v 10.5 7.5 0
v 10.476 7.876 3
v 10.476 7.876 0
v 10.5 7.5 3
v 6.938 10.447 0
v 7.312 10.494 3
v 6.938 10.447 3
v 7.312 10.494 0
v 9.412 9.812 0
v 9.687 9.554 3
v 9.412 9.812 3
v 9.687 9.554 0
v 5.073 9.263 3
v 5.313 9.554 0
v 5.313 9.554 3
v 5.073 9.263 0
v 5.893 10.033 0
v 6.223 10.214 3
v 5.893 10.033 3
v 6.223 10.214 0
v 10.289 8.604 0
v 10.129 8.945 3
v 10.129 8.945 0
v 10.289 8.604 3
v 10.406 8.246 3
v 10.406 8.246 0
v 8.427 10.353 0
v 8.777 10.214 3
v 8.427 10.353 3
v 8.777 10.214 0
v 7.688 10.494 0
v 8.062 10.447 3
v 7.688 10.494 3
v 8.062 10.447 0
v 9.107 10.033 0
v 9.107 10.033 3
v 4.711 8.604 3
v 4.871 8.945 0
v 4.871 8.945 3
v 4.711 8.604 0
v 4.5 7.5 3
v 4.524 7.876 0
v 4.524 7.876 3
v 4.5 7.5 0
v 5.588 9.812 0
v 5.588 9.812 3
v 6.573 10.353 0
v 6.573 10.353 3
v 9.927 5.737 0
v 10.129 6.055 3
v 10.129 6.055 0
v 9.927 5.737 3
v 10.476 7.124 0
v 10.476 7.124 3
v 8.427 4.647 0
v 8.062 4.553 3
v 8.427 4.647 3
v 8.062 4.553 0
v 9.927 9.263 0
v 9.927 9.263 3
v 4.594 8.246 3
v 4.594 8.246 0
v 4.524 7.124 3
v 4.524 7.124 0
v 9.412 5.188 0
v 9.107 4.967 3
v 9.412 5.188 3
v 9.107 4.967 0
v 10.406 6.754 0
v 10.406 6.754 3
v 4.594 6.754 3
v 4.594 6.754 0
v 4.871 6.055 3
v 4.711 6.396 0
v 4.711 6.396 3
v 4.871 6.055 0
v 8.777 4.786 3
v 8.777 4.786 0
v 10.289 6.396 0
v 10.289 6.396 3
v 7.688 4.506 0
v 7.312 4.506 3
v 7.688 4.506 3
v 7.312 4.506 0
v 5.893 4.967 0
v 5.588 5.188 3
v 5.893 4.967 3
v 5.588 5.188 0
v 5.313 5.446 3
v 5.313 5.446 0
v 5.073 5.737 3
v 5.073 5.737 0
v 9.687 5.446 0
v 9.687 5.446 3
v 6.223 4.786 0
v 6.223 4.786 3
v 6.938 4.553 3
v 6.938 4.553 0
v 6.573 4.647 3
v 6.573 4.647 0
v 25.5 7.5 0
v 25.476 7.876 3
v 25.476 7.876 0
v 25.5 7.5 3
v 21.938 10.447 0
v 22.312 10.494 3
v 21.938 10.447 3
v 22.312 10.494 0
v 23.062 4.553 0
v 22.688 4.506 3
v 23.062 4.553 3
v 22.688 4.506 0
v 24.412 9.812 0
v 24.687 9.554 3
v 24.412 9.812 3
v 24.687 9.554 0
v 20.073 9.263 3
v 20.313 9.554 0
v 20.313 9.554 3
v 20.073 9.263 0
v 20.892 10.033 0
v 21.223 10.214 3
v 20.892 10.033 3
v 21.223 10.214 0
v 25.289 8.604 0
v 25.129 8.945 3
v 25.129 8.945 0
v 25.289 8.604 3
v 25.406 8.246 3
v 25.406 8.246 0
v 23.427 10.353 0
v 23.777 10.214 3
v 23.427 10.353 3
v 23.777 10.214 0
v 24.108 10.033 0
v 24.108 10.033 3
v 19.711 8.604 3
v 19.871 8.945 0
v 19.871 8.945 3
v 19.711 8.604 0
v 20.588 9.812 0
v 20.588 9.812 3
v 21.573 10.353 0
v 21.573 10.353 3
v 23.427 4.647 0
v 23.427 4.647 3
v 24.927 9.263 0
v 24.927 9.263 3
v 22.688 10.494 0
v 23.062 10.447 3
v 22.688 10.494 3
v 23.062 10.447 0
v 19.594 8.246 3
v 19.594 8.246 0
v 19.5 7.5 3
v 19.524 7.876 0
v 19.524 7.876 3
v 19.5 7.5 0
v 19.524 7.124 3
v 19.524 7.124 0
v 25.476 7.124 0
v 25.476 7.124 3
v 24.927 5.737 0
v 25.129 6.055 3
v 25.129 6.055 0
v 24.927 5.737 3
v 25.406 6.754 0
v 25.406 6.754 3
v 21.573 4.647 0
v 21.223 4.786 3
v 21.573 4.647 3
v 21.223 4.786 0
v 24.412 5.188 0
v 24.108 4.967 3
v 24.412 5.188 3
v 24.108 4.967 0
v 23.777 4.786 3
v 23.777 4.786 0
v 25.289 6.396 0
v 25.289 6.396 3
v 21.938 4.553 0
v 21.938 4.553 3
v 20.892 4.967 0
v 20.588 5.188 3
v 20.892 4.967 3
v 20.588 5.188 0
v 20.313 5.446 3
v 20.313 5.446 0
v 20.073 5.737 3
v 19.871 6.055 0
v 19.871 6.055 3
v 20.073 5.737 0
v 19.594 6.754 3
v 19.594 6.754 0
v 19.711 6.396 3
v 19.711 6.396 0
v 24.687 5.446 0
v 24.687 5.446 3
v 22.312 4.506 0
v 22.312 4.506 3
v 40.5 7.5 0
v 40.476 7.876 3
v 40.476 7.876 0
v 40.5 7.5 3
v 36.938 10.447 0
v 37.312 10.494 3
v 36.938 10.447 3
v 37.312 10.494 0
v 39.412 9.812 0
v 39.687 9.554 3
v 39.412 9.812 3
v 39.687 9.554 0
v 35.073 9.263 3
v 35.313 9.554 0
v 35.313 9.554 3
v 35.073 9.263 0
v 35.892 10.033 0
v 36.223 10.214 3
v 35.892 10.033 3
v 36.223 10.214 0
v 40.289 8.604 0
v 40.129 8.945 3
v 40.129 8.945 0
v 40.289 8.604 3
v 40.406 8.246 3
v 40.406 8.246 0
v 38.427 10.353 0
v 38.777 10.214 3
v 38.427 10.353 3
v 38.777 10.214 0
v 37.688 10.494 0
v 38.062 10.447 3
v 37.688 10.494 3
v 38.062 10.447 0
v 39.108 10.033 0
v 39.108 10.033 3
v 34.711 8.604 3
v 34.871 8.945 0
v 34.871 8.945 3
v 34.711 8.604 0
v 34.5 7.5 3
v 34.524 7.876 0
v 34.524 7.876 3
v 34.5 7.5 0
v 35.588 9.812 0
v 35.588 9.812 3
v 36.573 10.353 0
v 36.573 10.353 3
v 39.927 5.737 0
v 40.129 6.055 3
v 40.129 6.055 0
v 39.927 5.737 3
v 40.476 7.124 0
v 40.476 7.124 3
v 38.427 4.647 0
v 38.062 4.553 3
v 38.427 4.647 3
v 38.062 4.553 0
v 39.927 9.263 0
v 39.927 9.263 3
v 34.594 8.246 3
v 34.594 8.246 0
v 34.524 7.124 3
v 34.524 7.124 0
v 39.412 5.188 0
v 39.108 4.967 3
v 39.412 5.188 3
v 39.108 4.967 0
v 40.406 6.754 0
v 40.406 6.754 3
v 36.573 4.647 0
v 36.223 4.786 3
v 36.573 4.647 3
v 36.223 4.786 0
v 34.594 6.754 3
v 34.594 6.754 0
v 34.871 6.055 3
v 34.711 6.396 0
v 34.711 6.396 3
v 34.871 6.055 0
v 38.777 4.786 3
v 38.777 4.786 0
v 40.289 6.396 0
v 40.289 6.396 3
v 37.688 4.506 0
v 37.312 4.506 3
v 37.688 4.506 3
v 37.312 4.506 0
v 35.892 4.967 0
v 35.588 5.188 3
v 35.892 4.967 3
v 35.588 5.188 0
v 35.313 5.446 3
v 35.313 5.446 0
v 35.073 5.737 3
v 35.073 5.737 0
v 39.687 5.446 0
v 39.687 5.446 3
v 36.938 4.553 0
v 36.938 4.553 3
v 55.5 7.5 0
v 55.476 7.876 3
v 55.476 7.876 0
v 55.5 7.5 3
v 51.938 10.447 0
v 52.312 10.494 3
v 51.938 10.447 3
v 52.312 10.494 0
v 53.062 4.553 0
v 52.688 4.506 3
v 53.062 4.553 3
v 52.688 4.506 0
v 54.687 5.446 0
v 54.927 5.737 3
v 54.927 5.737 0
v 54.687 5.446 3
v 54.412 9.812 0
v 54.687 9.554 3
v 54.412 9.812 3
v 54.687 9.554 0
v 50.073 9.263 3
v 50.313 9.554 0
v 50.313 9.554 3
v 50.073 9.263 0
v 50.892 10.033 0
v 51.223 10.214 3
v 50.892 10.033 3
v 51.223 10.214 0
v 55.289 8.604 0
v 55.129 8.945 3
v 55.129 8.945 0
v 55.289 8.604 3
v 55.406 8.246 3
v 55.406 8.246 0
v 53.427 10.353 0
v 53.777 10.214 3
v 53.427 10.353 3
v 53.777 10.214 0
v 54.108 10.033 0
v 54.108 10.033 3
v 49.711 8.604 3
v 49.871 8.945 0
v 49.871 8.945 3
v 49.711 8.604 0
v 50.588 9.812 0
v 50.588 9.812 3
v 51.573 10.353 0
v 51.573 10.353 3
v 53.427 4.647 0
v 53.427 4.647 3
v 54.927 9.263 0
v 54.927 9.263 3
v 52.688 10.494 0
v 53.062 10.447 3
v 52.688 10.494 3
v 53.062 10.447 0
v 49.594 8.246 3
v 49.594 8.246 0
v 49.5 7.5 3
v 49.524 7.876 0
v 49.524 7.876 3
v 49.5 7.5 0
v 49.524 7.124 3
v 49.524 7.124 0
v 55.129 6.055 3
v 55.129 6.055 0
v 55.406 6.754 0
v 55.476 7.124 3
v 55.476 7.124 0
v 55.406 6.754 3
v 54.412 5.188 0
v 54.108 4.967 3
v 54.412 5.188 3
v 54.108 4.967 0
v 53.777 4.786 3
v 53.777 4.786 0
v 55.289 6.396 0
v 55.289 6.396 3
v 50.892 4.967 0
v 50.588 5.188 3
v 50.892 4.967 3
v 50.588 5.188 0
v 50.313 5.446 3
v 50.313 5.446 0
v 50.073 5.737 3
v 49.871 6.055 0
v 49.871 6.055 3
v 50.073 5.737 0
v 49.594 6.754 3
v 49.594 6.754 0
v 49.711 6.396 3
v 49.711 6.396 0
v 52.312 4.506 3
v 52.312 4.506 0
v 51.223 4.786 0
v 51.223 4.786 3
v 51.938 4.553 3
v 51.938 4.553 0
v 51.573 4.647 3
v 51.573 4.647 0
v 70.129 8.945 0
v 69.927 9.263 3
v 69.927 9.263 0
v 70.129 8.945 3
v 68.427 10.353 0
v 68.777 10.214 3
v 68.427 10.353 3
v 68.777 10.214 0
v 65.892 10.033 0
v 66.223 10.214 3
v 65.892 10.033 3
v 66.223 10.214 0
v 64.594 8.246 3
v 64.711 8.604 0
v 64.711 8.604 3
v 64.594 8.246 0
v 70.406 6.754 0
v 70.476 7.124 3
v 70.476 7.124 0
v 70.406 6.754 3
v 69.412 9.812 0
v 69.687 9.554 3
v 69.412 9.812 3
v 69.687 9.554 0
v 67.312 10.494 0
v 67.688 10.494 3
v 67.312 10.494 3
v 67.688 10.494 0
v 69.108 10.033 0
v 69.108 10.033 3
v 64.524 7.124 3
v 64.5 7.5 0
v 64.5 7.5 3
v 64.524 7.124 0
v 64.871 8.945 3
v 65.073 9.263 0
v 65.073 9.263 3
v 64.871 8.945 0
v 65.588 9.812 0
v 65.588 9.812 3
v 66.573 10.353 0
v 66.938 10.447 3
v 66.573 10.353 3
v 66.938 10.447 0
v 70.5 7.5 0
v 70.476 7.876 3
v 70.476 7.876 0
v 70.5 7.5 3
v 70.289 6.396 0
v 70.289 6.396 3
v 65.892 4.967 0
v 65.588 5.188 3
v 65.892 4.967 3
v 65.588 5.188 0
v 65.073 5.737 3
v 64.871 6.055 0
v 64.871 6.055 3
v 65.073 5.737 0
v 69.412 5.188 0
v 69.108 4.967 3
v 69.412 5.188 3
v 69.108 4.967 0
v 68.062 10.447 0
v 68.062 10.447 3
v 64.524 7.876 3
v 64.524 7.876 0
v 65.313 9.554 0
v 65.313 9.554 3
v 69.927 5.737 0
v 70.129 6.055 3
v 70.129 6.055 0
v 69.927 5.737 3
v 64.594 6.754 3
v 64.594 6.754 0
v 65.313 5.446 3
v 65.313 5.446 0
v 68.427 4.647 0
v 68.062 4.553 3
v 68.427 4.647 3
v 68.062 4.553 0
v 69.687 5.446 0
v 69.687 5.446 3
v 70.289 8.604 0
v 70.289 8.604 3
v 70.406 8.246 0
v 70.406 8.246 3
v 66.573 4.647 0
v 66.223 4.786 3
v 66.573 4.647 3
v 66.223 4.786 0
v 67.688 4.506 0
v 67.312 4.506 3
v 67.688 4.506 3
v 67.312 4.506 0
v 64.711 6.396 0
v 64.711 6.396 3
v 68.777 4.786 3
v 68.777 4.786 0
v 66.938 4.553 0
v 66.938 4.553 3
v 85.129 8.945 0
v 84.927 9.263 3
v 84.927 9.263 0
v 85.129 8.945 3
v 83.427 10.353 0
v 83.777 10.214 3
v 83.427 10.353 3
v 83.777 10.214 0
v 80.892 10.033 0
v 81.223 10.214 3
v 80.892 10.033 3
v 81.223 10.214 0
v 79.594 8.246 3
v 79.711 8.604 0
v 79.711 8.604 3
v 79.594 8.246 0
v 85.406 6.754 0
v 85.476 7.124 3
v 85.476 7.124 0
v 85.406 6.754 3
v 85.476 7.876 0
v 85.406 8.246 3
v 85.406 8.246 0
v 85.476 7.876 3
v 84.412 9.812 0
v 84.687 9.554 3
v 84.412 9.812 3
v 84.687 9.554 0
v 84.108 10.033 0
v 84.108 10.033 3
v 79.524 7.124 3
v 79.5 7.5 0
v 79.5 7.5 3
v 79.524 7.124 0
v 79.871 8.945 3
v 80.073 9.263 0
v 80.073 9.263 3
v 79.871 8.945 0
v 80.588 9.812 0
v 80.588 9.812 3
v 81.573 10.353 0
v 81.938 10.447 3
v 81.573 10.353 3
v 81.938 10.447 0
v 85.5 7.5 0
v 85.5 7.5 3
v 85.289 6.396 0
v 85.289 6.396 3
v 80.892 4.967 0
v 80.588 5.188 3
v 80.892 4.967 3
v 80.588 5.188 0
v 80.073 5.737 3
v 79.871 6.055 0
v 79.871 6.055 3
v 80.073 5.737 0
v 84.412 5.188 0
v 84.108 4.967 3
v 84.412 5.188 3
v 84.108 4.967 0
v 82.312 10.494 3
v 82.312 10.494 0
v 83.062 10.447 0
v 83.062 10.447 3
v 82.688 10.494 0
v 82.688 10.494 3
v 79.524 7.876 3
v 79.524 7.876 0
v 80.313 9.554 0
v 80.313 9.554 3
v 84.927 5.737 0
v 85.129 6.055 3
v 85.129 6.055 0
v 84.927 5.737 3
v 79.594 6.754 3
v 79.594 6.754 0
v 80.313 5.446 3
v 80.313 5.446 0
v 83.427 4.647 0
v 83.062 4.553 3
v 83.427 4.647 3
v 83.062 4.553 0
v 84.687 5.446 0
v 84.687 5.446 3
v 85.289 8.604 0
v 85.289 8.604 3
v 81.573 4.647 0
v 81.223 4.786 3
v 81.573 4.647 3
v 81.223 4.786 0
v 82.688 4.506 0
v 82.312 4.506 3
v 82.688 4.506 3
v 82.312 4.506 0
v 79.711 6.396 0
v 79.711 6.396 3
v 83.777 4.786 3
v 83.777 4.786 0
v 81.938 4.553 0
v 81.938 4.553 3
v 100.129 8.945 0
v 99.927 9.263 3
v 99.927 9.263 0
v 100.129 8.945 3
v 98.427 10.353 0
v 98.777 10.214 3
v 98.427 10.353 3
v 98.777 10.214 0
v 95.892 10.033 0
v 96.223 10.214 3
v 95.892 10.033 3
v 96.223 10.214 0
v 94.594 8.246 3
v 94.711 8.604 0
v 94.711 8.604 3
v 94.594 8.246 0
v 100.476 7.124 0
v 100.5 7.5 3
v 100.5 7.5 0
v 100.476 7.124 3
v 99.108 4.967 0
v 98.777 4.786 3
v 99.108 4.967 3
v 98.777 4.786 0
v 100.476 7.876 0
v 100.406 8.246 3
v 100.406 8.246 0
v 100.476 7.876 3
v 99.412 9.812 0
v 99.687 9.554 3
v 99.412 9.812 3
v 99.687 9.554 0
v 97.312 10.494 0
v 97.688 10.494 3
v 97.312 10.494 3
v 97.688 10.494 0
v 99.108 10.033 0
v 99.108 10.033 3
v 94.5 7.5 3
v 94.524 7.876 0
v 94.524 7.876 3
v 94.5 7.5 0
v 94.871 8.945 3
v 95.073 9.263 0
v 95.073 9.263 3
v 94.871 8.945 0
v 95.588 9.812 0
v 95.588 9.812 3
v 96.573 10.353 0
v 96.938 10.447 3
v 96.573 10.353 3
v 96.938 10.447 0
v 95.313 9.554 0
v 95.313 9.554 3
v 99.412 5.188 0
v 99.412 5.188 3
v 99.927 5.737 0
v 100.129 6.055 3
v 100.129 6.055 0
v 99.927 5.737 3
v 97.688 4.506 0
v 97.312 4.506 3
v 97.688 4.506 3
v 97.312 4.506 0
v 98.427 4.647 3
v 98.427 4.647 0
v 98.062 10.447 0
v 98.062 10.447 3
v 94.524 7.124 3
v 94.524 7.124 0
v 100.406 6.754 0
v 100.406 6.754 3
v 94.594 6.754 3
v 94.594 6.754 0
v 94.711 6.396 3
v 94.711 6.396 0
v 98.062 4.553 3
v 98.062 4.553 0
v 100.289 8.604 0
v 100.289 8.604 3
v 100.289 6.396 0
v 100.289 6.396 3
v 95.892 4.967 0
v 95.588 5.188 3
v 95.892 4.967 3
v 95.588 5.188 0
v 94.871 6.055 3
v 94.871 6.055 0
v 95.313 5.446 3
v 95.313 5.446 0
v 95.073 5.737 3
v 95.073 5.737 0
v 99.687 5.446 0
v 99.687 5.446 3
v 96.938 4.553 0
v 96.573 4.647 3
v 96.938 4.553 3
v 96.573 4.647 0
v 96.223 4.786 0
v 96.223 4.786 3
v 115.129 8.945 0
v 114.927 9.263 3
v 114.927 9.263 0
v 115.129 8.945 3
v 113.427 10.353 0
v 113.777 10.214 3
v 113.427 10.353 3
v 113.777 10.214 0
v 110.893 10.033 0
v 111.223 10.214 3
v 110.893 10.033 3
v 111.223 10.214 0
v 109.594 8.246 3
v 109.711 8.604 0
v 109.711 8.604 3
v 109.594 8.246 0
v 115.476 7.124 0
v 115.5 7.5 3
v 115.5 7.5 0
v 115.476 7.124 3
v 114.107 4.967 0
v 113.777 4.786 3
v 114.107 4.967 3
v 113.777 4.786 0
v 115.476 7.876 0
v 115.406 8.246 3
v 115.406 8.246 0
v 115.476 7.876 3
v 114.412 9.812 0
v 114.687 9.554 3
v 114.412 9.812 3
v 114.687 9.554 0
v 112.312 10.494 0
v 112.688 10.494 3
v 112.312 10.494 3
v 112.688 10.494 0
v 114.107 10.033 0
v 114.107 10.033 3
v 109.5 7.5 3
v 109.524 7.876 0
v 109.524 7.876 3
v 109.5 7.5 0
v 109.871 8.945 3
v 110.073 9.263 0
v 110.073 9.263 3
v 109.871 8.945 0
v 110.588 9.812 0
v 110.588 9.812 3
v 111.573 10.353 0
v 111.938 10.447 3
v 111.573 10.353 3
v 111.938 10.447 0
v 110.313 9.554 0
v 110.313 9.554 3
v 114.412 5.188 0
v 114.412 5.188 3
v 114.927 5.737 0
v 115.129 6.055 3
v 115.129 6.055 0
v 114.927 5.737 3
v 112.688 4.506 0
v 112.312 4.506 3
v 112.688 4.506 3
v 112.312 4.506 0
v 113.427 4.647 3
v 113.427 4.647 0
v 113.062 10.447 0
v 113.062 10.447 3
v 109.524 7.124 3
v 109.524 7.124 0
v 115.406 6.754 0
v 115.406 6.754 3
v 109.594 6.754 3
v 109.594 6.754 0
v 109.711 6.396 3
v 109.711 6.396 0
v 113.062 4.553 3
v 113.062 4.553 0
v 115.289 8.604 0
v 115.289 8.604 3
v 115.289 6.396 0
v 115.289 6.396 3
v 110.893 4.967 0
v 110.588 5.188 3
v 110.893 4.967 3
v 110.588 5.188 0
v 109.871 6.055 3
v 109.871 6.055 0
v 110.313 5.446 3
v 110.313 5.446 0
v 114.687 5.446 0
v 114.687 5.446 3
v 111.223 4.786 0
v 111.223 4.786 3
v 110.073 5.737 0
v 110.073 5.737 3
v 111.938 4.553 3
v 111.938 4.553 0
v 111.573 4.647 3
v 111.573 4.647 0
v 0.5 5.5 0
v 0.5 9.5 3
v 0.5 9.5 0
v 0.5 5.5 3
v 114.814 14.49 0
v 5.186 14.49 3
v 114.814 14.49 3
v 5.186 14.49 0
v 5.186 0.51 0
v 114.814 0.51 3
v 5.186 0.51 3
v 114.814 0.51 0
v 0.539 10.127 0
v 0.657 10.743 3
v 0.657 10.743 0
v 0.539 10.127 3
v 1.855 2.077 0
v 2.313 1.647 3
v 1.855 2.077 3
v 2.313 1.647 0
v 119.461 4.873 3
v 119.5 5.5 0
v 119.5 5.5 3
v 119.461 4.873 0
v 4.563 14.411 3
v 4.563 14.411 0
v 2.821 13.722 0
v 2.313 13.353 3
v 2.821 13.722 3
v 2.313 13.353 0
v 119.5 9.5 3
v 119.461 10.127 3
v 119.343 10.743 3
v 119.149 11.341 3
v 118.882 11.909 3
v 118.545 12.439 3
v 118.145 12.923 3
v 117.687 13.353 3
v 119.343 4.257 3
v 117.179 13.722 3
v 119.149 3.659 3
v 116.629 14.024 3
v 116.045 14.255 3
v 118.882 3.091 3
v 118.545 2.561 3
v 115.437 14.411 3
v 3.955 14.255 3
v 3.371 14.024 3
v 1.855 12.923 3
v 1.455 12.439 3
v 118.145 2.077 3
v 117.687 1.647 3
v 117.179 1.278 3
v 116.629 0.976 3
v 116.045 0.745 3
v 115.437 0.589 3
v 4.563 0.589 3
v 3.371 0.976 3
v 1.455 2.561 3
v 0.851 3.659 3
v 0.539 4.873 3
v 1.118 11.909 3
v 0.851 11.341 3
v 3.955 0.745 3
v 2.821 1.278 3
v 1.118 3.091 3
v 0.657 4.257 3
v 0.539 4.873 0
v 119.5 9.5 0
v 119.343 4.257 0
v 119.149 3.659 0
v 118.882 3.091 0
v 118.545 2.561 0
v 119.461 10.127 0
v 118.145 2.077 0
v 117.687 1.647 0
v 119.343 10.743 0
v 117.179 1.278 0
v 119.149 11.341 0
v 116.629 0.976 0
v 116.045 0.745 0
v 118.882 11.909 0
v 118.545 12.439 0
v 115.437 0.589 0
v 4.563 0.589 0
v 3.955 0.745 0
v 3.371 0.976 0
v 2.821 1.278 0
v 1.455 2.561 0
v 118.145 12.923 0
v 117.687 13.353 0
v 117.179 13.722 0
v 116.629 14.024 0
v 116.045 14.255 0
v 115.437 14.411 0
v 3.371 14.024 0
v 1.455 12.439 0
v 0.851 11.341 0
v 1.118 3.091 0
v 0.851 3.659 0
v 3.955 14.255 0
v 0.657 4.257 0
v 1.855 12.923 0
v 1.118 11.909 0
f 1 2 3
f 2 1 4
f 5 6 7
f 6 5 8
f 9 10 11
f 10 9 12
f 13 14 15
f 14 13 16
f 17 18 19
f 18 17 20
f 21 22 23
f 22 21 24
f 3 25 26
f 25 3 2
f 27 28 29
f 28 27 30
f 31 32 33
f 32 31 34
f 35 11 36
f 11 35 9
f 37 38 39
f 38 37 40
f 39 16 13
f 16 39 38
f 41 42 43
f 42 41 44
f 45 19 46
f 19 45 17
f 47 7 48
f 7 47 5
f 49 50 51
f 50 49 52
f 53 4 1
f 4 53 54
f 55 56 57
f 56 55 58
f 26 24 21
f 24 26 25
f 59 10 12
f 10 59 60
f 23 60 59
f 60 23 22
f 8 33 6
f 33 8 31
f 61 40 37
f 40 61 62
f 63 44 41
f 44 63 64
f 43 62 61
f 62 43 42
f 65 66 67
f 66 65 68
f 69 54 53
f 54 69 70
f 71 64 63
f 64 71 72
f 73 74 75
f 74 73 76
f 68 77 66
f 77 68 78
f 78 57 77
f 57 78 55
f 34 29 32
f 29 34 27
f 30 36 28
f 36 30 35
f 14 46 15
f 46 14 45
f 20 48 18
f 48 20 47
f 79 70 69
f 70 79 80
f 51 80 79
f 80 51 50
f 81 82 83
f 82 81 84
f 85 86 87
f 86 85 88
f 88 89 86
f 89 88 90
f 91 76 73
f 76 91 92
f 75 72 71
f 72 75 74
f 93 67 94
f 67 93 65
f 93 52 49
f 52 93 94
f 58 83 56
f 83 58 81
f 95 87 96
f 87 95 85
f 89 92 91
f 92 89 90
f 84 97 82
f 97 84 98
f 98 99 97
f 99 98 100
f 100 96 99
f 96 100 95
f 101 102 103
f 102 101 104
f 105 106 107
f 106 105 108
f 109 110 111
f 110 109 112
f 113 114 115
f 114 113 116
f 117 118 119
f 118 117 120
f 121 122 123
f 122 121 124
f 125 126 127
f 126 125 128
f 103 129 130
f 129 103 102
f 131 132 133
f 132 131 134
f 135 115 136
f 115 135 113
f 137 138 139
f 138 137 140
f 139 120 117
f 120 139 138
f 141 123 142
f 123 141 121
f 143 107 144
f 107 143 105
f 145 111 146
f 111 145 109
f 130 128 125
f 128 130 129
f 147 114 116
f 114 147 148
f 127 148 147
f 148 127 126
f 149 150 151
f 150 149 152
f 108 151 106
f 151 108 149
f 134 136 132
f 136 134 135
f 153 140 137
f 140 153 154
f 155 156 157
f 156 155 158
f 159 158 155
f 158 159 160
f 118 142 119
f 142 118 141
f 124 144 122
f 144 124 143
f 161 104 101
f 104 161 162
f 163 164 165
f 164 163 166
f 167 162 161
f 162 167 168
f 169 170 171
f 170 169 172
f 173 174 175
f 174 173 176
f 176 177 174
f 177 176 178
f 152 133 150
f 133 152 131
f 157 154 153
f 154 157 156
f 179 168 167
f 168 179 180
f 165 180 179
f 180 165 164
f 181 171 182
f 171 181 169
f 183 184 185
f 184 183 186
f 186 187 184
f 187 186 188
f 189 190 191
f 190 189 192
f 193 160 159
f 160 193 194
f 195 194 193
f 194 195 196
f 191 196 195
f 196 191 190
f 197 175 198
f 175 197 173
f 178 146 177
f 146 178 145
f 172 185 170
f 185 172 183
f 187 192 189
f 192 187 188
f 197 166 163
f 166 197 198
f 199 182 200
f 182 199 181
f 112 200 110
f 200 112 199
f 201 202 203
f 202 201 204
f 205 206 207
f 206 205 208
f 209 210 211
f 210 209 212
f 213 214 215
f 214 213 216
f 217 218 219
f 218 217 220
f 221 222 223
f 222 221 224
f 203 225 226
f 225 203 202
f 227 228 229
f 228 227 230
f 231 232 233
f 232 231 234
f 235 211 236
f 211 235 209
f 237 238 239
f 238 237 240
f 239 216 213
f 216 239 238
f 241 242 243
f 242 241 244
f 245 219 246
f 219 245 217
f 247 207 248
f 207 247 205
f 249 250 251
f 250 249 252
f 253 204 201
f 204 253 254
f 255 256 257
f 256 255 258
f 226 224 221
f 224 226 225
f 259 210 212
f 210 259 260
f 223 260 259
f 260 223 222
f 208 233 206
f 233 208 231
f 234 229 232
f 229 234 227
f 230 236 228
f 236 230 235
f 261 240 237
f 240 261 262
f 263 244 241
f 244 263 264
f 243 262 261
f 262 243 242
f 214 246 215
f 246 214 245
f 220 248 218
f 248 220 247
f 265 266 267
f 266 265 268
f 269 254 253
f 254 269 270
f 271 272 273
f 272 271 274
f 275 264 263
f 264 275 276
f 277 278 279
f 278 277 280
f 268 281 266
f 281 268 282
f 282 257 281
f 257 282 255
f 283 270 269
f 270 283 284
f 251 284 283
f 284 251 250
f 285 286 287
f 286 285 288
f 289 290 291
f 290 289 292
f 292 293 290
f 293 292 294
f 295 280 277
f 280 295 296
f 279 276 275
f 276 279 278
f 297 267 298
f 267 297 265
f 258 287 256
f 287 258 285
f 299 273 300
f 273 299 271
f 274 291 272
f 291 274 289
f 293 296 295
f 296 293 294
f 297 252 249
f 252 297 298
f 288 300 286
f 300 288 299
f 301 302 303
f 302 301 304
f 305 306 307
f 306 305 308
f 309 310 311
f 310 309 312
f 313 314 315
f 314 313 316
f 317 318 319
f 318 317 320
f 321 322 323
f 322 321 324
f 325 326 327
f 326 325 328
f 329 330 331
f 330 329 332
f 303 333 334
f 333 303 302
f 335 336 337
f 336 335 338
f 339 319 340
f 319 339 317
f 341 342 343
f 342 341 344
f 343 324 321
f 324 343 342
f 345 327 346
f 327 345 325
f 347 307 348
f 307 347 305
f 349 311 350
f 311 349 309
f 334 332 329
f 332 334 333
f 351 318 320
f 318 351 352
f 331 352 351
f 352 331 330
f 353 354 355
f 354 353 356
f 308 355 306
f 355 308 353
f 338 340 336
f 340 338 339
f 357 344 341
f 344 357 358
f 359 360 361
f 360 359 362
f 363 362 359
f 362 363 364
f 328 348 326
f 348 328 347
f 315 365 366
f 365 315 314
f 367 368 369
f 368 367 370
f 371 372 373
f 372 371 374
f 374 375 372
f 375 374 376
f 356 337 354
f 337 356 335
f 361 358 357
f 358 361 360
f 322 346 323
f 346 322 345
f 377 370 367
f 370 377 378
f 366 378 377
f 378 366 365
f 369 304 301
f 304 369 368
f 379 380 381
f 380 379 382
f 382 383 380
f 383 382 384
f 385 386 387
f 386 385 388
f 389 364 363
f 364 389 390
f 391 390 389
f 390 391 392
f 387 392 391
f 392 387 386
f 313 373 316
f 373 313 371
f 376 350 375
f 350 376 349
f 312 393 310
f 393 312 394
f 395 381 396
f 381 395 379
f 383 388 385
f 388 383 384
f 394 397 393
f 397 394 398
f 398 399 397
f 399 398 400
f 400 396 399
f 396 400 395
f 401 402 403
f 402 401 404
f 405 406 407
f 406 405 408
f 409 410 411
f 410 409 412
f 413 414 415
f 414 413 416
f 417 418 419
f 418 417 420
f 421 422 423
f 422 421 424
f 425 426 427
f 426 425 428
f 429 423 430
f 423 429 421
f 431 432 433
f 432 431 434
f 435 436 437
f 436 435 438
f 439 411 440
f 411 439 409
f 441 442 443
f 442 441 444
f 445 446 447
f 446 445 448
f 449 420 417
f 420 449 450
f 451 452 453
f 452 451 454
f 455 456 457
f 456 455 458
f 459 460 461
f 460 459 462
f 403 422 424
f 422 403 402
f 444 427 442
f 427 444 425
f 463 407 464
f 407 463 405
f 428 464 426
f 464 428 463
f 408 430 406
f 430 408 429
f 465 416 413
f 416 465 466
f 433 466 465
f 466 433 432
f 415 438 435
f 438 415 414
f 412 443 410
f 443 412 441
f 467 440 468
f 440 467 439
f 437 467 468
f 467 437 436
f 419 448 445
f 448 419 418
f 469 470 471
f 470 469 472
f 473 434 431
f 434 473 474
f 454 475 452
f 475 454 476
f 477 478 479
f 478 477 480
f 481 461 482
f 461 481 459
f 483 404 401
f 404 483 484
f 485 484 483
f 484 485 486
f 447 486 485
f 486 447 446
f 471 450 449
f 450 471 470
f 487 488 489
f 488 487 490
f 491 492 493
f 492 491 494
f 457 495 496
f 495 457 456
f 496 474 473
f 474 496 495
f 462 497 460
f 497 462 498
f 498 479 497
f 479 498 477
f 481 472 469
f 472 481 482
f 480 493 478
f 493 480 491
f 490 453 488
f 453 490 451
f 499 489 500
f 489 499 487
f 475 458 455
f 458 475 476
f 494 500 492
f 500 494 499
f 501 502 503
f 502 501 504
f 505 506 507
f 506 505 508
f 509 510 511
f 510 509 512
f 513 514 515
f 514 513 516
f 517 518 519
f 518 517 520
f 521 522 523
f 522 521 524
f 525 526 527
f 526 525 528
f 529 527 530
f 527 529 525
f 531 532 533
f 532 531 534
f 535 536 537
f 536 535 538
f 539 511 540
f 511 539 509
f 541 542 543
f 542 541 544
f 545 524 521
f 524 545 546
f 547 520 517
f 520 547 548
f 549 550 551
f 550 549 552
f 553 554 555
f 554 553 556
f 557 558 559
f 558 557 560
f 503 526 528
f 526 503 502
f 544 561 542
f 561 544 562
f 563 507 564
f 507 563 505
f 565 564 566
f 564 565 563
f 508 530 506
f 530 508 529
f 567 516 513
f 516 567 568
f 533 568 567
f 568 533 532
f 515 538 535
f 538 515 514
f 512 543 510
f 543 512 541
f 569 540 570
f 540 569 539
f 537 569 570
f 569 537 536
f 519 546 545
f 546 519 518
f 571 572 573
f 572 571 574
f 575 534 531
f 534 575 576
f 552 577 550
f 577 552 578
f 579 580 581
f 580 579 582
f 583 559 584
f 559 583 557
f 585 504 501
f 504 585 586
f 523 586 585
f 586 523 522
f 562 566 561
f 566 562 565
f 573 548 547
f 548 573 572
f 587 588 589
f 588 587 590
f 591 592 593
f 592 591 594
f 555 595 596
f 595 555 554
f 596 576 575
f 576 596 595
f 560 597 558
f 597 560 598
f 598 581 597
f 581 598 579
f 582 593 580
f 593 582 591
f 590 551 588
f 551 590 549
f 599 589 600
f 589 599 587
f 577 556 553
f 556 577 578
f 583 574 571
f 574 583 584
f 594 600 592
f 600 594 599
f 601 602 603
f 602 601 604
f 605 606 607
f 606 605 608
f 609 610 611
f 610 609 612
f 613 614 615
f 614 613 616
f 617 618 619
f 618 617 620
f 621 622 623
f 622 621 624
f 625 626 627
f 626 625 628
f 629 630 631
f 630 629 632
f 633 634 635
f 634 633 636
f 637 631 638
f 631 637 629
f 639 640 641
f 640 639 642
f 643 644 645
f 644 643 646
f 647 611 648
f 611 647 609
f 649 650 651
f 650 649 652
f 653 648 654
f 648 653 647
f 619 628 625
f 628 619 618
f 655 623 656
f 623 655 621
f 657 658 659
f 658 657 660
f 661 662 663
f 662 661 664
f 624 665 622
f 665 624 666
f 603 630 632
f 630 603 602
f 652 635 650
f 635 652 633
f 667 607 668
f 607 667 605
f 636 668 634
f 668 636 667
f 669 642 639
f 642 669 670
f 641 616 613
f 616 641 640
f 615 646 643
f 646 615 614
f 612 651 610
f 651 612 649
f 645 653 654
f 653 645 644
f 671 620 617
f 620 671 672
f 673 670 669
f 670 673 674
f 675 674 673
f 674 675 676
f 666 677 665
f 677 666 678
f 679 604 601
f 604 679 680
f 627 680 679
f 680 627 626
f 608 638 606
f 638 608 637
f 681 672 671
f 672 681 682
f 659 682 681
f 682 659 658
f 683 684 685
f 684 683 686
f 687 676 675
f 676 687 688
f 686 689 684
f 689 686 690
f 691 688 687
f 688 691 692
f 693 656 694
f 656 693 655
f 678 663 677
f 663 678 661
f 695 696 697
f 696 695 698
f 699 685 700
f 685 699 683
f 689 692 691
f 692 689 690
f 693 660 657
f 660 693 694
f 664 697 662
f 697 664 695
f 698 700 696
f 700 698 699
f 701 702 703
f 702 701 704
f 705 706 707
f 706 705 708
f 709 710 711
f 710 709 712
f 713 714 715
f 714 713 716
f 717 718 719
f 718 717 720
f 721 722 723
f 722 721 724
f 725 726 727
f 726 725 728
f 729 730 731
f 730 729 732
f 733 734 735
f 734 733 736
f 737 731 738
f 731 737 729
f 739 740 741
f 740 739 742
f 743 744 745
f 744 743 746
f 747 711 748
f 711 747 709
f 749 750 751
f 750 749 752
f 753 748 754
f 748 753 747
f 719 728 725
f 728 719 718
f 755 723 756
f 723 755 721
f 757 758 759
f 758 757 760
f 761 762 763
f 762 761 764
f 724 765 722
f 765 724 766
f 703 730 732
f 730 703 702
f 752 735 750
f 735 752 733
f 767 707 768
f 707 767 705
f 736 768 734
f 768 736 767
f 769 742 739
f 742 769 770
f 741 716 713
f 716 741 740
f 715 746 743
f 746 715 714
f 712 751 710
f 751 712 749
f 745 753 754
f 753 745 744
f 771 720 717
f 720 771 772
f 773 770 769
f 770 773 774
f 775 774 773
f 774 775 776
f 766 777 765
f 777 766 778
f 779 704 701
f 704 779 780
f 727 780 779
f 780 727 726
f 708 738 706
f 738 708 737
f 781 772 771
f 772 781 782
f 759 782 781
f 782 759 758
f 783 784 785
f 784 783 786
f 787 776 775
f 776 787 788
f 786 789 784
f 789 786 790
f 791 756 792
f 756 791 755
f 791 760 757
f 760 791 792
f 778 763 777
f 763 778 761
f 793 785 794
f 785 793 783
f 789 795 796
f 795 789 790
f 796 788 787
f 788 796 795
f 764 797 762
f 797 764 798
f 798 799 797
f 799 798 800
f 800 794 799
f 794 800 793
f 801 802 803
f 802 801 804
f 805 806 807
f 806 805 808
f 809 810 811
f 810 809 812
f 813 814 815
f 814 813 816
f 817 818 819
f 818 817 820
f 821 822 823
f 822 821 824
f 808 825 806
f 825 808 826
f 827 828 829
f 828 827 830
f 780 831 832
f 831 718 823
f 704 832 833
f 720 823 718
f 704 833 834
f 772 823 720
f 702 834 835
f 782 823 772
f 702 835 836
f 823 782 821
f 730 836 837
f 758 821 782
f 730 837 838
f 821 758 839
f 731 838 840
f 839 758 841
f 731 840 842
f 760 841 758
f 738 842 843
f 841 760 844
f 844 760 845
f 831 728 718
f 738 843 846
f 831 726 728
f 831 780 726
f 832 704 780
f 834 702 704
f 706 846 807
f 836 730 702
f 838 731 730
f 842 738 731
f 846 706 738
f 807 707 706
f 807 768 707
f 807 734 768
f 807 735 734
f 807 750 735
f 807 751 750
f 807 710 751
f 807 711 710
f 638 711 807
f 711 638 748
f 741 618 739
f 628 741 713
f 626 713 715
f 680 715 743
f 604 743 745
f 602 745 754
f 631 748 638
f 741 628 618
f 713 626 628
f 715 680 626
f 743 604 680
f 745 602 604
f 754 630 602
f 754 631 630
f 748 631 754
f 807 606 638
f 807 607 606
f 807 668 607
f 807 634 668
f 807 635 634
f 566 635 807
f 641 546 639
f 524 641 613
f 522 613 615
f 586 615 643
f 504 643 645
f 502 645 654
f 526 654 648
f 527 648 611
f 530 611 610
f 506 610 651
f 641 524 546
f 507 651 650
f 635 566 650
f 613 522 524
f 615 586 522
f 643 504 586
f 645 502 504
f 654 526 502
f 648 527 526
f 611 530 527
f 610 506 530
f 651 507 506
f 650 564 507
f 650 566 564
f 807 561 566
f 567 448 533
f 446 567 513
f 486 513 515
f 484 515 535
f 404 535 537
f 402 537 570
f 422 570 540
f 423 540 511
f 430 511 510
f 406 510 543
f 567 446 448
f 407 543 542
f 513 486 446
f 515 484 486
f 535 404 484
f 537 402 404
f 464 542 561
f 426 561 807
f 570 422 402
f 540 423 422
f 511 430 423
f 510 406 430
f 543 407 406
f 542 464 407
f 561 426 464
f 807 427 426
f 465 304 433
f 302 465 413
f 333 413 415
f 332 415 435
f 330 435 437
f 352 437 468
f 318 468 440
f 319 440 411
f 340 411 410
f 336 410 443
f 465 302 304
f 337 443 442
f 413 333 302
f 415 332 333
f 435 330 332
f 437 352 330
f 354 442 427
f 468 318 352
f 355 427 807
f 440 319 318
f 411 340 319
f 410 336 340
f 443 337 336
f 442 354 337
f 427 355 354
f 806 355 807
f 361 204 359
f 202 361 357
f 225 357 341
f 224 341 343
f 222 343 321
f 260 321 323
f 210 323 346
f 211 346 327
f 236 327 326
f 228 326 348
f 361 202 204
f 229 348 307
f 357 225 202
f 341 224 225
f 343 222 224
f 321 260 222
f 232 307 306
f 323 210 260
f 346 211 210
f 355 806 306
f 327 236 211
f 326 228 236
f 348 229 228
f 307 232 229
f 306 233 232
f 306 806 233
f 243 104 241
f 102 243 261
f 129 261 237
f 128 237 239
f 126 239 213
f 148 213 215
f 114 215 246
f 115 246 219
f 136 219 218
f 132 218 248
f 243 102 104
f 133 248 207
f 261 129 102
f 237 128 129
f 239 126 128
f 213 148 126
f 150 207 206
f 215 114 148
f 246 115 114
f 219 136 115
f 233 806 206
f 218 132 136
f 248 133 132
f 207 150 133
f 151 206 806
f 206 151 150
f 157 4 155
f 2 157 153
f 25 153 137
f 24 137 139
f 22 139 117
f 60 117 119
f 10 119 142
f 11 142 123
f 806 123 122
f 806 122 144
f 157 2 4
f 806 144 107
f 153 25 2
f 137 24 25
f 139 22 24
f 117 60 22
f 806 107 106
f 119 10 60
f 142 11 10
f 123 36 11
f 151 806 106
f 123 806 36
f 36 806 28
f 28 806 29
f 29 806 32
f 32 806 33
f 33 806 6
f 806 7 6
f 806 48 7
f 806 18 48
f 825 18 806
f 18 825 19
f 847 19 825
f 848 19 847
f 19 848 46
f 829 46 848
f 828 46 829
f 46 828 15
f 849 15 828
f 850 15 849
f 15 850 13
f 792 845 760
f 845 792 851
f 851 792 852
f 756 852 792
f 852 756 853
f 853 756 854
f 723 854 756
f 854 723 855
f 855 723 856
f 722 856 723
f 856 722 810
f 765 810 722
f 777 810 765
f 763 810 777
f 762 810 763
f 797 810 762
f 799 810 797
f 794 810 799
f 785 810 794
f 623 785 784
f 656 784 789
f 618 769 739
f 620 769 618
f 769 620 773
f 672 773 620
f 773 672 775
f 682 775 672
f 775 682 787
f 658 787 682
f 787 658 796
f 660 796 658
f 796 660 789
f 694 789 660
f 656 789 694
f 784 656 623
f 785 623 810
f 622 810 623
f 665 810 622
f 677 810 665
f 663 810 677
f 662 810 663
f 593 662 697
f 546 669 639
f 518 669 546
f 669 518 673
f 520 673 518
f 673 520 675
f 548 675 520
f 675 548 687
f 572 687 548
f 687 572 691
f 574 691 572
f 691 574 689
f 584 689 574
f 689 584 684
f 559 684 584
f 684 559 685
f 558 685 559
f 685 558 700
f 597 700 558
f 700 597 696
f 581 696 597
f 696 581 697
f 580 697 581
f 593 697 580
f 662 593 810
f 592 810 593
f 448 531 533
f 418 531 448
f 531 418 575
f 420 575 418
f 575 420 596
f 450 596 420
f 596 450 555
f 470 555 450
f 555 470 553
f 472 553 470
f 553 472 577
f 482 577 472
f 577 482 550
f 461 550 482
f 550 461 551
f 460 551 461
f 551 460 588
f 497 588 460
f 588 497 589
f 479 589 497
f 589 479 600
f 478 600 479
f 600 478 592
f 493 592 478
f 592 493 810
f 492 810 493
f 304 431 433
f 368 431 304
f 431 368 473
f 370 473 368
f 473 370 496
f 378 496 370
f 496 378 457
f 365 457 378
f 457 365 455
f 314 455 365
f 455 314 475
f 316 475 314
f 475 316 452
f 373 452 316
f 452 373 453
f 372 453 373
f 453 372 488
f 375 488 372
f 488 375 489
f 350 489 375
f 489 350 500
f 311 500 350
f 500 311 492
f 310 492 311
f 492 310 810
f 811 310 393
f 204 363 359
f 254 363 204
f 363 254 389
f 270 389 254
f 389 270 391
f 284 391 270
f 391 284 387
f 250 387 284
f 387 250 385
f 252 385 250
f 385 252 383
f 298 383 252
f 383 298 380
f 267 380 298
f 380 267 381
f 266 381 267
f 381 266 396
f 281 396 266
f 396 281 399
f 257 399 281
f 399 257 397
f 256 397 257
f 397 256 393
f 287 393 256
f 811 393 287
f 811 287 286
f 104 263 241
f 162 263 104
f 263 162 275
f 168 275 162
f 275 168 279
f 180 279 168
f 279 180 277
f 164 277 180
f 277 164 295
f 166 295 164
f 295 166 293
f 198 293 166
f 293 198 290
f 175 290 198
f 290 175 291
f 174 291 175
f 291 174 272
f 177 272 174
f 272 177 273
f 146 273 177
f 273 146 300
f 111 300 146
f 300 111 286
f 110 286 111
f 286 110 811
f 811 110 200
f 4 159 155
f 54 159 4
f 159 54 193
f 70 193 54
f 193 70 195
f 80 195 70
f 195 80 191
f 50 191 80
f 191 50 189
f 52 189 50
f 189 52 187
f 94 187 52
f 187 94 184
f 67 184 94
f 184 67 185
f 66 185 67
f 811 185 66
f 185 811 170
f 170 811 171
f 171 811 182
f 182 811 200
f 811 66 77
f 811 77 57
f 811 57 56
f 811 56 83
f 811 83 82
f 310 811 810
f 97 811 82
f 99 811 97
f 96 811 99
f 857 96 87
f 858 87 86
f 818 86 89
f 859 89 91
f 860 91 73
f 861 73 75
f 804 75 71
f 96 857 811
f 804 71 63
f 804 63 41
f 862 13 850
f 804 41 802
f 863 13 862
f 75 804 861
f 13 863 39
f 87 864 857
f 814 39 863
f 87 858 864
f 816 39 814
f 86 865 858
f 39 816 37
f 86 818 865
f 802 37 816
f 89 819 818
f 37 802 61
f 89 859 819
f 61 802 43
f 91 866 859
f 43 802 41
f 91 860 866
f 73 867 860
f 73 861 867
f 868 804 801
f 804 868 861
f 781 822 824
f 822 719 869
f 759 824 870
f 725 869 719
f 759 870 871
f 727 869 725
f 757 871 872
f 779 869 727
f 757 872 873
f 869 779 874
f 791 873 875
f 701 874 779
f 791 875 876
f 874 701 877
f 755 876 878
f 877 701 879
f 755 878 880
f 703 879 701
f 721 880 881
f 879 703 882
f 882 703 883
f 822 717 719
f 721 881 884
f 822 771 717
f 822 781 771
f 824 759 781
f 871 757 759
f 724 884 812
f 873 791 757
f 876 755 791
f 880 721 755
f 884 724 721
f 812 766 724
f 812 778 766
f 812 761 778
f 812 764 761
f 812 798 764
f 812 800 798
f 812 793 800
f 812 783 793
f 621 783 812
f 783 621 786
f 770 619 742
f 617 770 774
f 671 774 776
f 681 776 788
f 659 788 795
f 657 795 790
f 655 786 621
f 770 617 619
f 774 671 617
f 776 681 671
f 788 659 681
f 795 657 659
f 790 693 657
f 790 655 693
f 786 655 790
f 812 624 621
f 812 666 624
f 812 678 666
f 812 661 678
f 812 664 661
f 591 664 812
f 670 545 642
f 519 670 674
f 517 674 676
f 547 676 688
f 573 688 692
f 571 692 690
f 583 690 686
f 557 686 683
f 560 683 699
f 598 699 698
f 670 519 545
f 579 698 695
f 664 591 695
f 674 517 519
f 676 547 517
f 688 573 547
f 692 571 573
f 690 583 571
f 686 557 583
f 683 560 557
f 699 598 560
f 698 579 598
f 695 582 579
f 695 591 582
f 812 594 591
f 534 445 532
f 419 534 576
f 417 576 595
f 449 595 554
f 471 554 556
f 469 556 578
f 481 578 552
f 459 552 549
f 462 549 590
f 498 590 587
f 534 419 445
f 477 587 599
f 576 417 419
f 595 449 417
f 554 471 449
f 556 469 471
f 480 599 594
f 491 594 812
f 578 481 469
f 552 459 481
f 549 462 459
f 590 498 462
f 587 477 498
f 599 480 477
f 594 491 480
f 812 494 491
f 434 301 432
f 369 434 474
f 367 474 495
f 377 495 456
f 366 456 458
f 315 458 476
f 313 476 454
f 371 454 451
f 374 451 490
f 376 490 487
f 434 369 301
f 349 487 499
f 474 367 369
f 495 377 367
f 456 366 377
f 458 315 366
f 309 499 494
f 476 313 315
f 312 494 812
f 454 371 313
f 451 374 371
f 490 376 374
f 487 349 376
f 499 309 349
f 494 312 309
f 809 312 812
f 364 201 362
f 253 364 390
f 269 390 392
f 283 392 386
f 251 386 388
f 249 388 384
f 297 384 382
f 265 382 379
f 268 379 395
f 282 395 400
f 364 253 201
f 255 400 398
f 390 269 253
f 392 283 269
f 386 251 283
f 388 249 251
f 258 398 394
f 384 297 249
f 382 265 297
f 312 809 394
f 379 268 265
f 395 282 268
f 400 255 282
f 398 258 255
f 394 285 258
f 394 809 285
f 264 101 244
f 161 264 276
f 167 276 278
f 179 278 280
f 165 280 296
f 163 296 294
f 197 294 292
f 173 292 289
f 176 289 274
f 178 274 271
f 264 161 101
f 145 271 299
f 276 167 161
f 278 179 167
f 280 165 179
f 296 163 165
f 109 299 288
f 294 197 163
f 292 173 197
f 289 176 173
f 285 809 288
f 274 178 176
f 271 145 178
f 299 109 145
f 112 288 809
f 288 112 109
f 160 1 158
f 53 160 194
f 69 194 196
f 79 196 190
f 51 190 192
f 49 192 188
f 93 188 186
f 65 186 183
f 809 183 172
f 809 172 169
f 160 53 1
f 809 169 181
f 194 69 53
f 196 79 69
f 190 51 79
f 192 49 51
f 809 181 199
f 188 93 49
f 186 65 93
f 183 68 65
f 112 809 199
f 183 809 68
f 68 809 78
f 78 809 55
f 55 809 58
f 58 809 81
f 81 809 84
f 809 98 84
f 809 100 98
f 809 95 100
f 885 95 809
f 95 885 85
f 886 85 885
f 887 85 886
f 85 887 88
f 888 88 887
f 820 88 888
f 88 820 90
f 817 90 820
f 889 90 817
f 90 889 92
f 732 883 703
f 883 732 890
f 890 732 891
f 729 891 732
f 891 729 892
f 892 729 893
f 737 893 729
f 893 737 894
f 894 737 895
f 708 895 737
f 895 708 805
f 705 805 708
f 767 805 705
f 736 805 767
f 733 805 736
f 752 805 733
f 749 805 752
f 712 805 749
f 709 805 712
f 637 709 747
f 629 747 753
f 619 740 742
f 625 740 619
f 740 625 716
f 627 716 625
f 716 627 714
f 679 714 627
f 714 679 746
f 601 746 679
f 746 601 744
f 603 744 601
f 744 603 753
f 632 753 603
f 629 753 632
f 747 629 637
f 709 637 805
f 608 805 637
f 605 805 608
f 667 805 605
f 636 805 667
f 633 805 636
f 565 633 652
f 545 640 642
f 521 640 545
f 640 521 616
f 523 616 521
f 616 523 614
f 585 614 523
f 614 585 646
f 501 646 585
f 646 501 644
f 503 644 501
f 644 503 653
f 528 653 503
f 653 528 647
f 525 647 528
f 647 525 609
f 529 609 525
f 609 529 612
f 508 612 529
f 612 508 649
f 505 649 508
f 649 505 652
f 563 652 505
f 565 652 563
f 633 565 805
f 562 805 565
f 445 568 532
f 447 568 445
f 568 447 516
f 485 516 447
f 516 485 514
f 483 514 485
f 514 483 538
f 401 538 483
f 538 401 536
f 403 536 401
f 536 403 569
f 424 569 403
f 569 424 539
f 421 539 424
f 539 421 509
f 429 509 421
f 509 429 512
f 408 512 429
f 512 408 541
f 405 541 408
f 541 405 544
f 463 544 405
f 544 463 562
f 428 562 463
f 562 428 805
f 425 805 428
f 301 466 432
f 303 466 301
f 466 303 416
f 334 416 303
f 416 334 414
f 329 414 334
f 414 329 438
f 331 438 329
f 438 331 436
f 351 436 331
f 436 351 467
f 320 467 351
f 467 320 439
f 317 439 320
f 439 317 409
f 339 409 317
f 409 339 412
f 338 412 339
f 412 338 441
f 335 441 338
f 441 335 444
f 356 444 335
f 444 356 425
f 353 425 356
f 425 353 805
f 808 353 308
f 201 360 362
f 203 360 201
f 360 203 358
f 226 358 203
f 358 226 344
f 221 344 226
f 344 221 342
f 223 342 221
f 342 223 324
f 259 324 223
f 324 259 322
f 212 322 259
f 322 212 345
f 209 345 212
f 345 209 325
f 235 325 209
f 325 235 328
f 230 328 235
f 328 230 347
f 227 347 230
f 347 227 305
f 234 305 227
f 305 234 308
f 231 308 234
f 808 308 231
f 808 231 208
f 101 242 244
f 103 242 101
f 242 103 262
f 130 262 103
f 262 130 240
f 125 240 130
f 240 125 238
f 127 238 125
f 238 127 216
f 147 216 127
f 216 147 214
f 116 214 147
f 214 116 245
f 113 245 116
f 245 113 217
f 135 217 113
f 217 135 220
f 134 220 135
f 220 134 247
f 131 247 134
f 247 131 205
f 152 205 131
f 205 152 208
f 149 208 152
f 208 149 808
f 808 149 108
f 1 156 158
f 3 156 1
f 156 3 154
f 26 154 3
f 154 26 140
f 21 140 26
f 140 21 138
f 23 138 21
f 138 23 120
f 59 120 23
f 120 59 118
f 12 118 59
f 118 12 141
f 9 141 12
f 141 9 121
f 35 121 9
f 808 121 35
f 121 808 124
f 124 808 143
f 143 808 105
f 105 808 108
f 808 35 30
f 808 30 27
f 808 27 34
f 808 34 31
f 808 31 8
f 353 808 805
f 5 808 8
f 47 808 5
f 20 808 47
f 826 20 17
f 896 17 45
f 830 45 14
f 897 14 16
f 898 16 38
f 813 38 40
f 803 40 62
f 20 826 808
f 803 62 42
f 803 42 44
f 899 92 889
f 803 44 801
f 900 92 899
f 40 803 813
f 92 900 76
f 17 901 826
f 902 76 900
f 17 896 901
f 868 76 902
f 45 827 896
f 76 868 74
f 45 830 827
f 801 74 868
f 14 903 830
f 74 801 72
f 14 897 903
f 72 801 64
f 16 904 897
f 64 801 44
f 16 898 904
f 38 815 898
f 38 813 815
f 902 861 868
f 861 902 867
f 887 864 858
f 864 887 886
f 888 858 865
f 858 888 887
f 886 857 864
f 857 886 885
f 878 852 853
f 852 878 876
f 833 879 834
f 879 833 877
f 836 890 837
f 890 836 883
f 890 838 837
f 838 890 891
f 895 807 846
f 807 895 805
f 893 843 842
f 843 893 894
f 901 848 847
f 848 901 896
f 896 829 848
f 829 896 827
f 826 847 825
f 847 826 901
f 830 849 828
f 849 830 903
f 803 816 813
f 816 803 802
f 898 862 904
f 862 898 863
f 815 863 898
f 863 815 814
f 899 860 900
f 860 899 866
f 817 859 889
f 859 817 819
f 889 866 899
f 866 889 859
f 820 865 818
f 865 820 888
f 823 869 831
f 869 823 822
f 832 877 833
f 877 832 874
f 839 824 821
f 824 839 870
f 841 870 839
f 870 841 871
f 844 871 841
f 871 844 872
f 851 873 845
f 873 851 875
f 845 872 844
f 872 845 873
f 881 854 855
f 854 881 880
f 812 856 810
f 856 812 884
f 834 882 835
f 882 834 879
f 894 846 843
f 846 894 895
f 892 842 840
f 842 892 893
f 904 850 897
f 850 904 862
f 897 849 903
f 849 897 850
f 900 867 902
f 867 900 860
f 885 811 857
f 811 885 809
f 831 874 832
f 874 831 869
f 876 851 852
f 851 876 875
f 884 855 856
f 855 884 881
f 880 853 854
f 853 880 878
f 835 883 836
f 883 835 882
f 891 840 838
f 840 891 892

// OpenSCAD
// Generated by SolidPython 1.1.3 on 2023-01-30 14:07:58
$fn = 50;


difference() {
	union() {
		translate(v = [60.0000000000, 7.5000000000, 0]) {
			rotate(a = [0, 0, 0]) {
				hull() {
					translate(v = [-54.5000000000, 2.0000000000, 0]) {
						rotate(a = [0, 0, 0]) {
							translate(v = [0, 0, 0]) {
								rotate(a = [0, 0, 0]) {
									cylinder(h = 3, r = 5);
								}
							}
						}
					}
					translate(v = [54.5000000000, 2.0000000000, 0]) {
						rotate(a = [0, 0, 0]) {
							translate(v = [0, 0, 0]) {
								rotate(a = [0, 0, 0]) {
									cylinder(h = 3, r = 5);
								}
							}
						}
					}
					translate(v = [-54.5000000000, -2.0000000000, 0]) {
						rotate(a = [0, 0, 0]) {
							translate(v = [0, 0, 0]) {
								rotate(a = [0, 0, 0]) {
									cylinder(h = 3, r = 5);
								}
							}
						}
					}
					translate(v = [54.5000000000, -2.0000000000, 0]) {
						rotate(a = [0, 0, 0]) {
							translate(v = [0, 0, 0]) {
								rotate(a = [0, 0, 0]) {
									cylinder(h = 3, r = 5);
								}
							}
						}
					}
				}
			}
		}
	}
	union() {
		translate(v = [7.5000000000, 7.5000000000, 0]) {
			rotate(a = [0, 0, 0]) {
				translate(v = [0, 0, -50]) {
					rotate(a = [0, 0, 0]) {
						cylinder(h = 100, r = 3.0000000000);
					}
				}
			}
		}
		translate(v = [22.5000000000, 7.5000000000, 0]) {
			rotate(a = [0, 0, 0]) {
				translate(v = [0, 0, -50]) {
					rotate(a = [0, 0, 0]) {
						cylinder(h = 100, r = 3.0000000000);
					}
				}
			}
		}
		translate(v = [37.5000000000, 7.5000000000, 0]) {
			rotate(a = [0, 0, 0]) {
				translate(v = [0, 0, -50]) {
					rotate(a = [0, 0, 0]) {
						cylinder(h = 100, r = 3.0000000000);
					}
				}
			}
		}
		translate(v = [52.5000000000, 7.5000000000, 0]) {
			rotate(a = [0, 0, 0]) {
				translate(v = [0, 0, -50]) {
					rotate(a = [0, 0, 0]) {
						cylinder(h = 100, r = 3.0000000000);
					}
				}
			}
		}
		translate(v = [67.5000000000, 7.5000000000, 0]) {
			rotate(a = [0, 0, 0]) {
				translate(v = [0, 0, -50]) {
					rotate(a = [0, 0, 0]) {
						cylinder(h = 100, r = 3.0000000000);
					}
				}
			}
		}
		translate(v = [82.5000000000, 7.5000000000, 0]) {
			rotate(a = [0, 0, 0]) {
				translate(v = [0, 0, -50]) {
					rotate(a = [0, 0, 0]) {
						cylinder(h = 100, r = 3.0000000000);
					}
				}
			}
		}
		translate(v = [97.5000000000, 7.5000000000, 0]) {
			rotate(a = [0, 0, 0]) {
				translate(v = [0, 0, -50]) {
					rotate(a = [0, 0, 0]) {
						cylinder(h = 100, r = 3.0000000000);
					}
				}
			}
		}
		translate(v = [112.5000000000, 7.5000000000, 0]) {
			rotate(a = [0, 0, 0]) {
				translate(v = [0, 0, -50]) {
					rotate(a = [0, 0, 0]) {
						cylinder(h = 100, r = 3.0000000000);
					}
				}
			}
		}
	}
}
/***********************************************
*********      SolidPython code:      **********
************************************************
 
from solid import *
import os
import subprocess

import oomB

import opsc_library_gen

mode = "laser"
#mode = "3d_print"

defined_objects = {}

radius_dict = {}
countersunk_dict = {}


def set_mode(m):
    global mode
    mode = m
    radius_dict['M6'] = 6.5/2
    radius_dict['M3'] = 3.3/2
    if mode == "laser":
        radius_dict['M6'] = 6/2
        radius_dict['M3'] = 3/2

    countersunk_dict['M3'] = {}
    countersunk_dict['M3']['little_rad'] = radius_dict['M3']
    countersunk_dict['M3']['big_rad'] = (5.5+0.6)/2
    if mode == "laser":
        countersunk_dict['M3']['big_rad'] = (4.75+0.6)/2
        countersunk_dict['M3']['little_rad'] = (4.75+0.6)/2

    countersunk_dict['M3']['height'] = 1.7


def opsc_make_object(filename, objects, save_type="none",resolution=50, layers = 1, tilediff = 200, mode="laser"):
    set_mode(mode)
    save_type = save_type.lower()
    os.makedirs(os.path.dirname(filename), exist_ok=True)
    final_object = opsc_get_object(objects)
    # Save the final object to the specified filename    
    scad_render_to_file(final_object, filename, file_header='$fn = %s;' % resolution, include_orig_code=True)
    if mode == "laser":
        filename_laser = filename.replace(".scad","-flat.scad")
        scad_render_to_file(getLaser(final_object, layers=layers, tilediff=tilediff), filename_laser, file_header='$fn = %s;' % resolution, include_orig_code=True)
        if save_type == "all":
            saveToAll(filename_laser)
        elif save_type == "dxf":
            saveToDxf(filename_laser)
    if save_type == "all":
        saveToAll(filename)
    elif save_type == "dxf":
        saveToDxf(filename)


def opsc_get_object(objects):
    # Create the solidpython objects
    positive_objects = [get_opsc_item(obj) for obj in objects if obj['type'] == 'positive']
    negative_objects = [get_opsc_item(obj) for obj in objects if obj['type'] == 'negative']
    # Union the positive objects
    positive_object = union()(*positive_objects)
    # Union the negative objects
    negative_object = union()(*negative_objects)
    # Create the final object by subtracting the negative objects from the positive objects
    return difference()(positive_object, negative_object)

def get_opsc_item(params):
    # A dictionary to map radius string values to numerical values
    #radius_dict = {'small': 5, 'medium': 10, 'large': 15}
    # An array of function names for basic shapes
    basic_shapes = ['cube', 'sphere', 'cylinder']
    
    # An array of function names for other shapes
    other_shapes = ['hole', 'slot', 'rounded_rectangle', 'countersunk']
    


    # Convert radius to r if present, and remove radius from the params dictionary
    if 'radius' in params:
        if isinstance(params['radius'], str):
            # Use the radius_dict to map the radius string value to a numerical value
            params['r'] = radius_dict[params['radius']]
        else:
            params['r'] = params['radius']
        del params['radius']
    

    # Check if the object type is a basic shape
    if params['shape'] in basic_shapes:
        # Remove shape and unexpected dictionary values
        allowed_keys = {'size', 'r', 'r1', 'r2', 'd', 'h', 'rw', 'rh', 'dw', 'dh'}
        shape_params = {k: v for k, v in params.items() if k in allowed_keys}

        # Call the corresponding function for the shape parameter, using ** notation to pass the shape_params dictionary as keyword arguments
        return get_opsc_transform(params,globals()[params['shape']](**shape_params))
    
    # If the object type is not a basic shape, check if it's a defined object or one of the other shapes
    elif params['shape'] in other_shapes:
        # Call the corresponding function for the shape parameter, passing the params dictionary as an argument
        p2 = copy.deepcopy(params)
        p2["pos"] = [0,0,0]
        return get_opsc_transform(params,globals()[params['shape']](p2))
    
    # If the object is not a basic shape or a defined object, try to import it from a .scad file
    else:
        obj = defined_objects[params['shape']]
        return get_opsc_transform(params,obj)

def get_opsc_transform(params, solid_obj):
    # Rotate the object based on the 'rot' field in the params dictionary, or the 'rotX', 'rotY', and 'rotZ' fields if 'rot' is not present
    rot = params.get('rot', [])
    if rot:
        rotX, rotY, rotZ = rot
    else:
        rotX = params.get('rotX', 0)
        rotY = params.get('rotY', 0)
        rotZ = params.get('rotZ', 0)
    solid_obj = rotate([rotX, rotY, rotZ])(solid_obj)

    # Translate the object based on the 'pos' field in the params dictionary, or the 'x', 'y', and 'z' fields if 'pos' is not present
    pos = params.get('pos', [])
    if pos:
        x, y, z = pos
    else:
        x = params.get('x', 0)
        y = params.get('y', 0)
        z = params.get('z', 0)
    solid_obj = translate([x, y, z])(solid_obj)
    return solid_obj


import random

def opsc_easy_array(type, shape, repeats, pos_start, shift_arr, **kwargs):
    for i in range(0,3):
        repeats.append(1)
        pos_start.append(0)
        shift_arr.append(0)
    return_objects = []

    for x in range(0,repeats[0]):
        for y in range(0,repeats[1]):
            for z in range(0,repeats[2]):
                return_objects.append(opsc_easy(type, shape, pos=[pos_start[0]+x*shift_arr[0],pos_start[1]+y*shift_arr[1],pos_start[2]+z*shift_arr[2]], **kwargs))
    return return_objects                



def opsc_easy(type, shape, **kwargs):
    obj = {
        'type': type,
        'shape': shape
    }
    for param in ['size', 'r', 'r1', 'r2', 'd', 'h', 'rw', 'rh', 'dw', 'dh', 'pos', 'x', 'y', 'z', 'rot', 'rotX', 'rotY', 'rotZ', "w"]:
        if param in kwargs:
            obj[param] = kwargs[param]
    return obj

def hole(params):
    p2 = copy.deepcopy(params)  
    # Check if the radius is a string and replace it with the corresponding value from the dictionary
    if isinstance(p2['r'], str):
        p2['r'] = radius_dict[p2['r']]
    
    # Set the height to 100 if not specified
    if 'h' not in p2:
        p2['h'] = 100
        p2["pos"] = [0,0,-50]
    p2["center"] = True
    # Create the cylinder object
    p2["shape"] = "cylinder"
    p2["type"] = "positive"

    return get_opsc_item(p2)

import copy

def countersunk(params):
    p2 = copy.deepcopy(params)
    counter_rad = p2['r']
    p2['r'] = radius_dict[p2['r']]
    hp = copy.deepcopy(p2)
    hp["type"] = "positive"
    hp["shape"] = "hole"
    del hp["rot"]
    hol = get_opsc_item(hp)
    
    cp = copy.deepcopy(p2)
    cp["h"] = countersunk_dict[counter_rad]["height"]
    cp["r2"] = countersunk_dict[counter_rad]["little_rad"]
    cp["r1"] = countersunk_dict[counter_rad]["big_rad"]
    del cp["r"]
    del cp["rot"]
    cp["type"] = "positive"
    cp["shape"] = "cylinder"
    cp["pos"] = [0,0,0]

    top = get_opsc_item(cp)
    return union()(hol,top)



def slot(params):  
    p2 = copy.deepcopy(params) 
    if isinstance(p2['r'], str):
        p2['r'] = radius_dict[p2['r']]
    p2["type"] = "positive"
    p2["shape"] = "hole"
    del p2["rot"]
    p2["pos"] = [0,0,0]
    left = copy.deepcopy(p2)
    right = copy.deepcopy(p2)
    left["pos"][0] = p2["w"] / 2 - p2["r"] 
    
    right["pos"][0] = -p2["w"] / 2 + p2["r"] 
    pass
    leftObj = get_opsc_item(left)
    rightObj = get_opsc_item(right)
    return hull()(leftObj, rightObj)

def rounded_rectangle(params):   
    p2 = copy.deepcopy(params) 
    p2["h"] = p2["size"][2]
    p2["pos"] = p2.get("pos", [0, 0, 0]) 
    p2["type"] = "positive"
    p2["shape"] = "hole"
    p2["pos"] = [0,0,0]
    
    if 'rot' in p2:
        del p2["rot"]   
    if 'r' not in p2:
        p2["r"] = 5 
    tl = copy.deepcopy(p2)
    tr = copy.deepcopy(p2)
    bl = copy.deepcopy(p2)
    br = copy.deepcopy(p2)
    tl["pos"][0] = -(p2["size"][0] - p2["r"]*2)/2
    tl["pos"][1] = (p2["size"][1] - p2["r"]*2)/2
    tr["pos"][0] = (p2["size"][0] - p2["r"]*2)/2
    tr["pos"][1] = (p2["size"][1] - p2["r"]*2)/2
    bl["pos"][0] = -(p2["size"][0] - p2["r"]*2)/2
    bl["pos"][1] = -(p2["size"][1] - p2["r"]*2)/2
    br["pos"][0] = (p2["size"][0] - p2["r"]*2)/2
    br["pos"][1] = -(p2["size"][1] - p2["r"]*2)/2
    del tl["size"]
    del tr["size"]
    del bl["size"]
    del br["size"]
    tlo = get_opsc_item(tl)
    tro = get_opsc_item(tr)
    blo = get_opsc_item(bl)
    bro = get_opsc_item(br)    
    return hull()(tlo, tro, blo, bro)



def import_scad_object(filename):
    # Import the .scad file and convert it to a solidpython object
    #filename = "parts"
    obj = import_scad(filename)
    return obj.main()
    


import os
import solid as solidpython

# A dictionary to store the defined objects


def load_scad_objects():
    opsc_library_gen.gen_library(defined_objects)

import random

def test(num_objects):
    objects = []
    for i in range(num_objects):
        # Choose a random shape
        #shape = random.choice(['cube', 'sphere', 'cylinder', 'hole', 'slot', "rounded_rectangle"])
        shape = random.choice(["rounded_rectangle"])

        # Choose a random type
        type = random.choice(['positive', 'negative'])
        
        # Create an empty object dictionary
        obj = {'shape': shape, 'type': type}
        
        # Set shape-specific parameters
        if obj['shape'] in ['cube']:
            obj['size'] =  [random.uniform(5, 15), random.uniform(5, 15), random.uniform(5, 15)]
        if obj['shape'] in ['rounded_rectangle']:
            obj['size'] =  [random.uniform(5, 15), random.uniform(5, 15), random.uniform(5, 15)]
            obj['r'] = random.uniform(0.5, 5)
        elif obj['shape'] == 'sphere':
            obj['r'] = random.uniform(5, 15)
        elif obj['shape'] in ['cylinder', 'hole']:
            obj['r'] = random.uniform(0.5, 5)
            obj['h'] = random.uniform(5, 15)
        elif obj['shape'] == 'slot':
            obj['r'] = random.uniform(0.5, 5)
            obj['h'] = random.uniform(5, 15)
            obj['w'] = random.uniform(5, 15)
        
        # Set a random position and rotation
        obj['pos'] = [random.uniform(-20, 20), random.uniform(-20, 20), random.uniform(-20, 20)]
        obj['rot'] = [random.uniform(-180, 180), random.uniform(-180, 180), random.uniform(-180, 180)]
        
        # Add the object to the list
        objects.append(obj)
    return objects

####### old file saving
def saveToAll(fileIn):
    saveToDxf(fileIn)
    saveToPng(fileIn)
    saveToStl(fileIn)
    saveToSvg(fileIn)

def saveToDxf(fileIn, fileOut="", copy_to_laser=True):
    if fileOut == "":
        fileOut = fileIn.replace(".scad",".dxf")
    saveToFile(fileIn, fileOut)


    
def saveToPng(fileIn, fileOut="",extra="--render"):
    if fileOut == "":
        fileOut = fileIn.replace(".scad",".png")
    saveToFile(fileIn, fileOut)

def saveToStl(fileIn, fileOut=""):
    if fileOut == "":
        fileOut = fileIn.replace(".scad",".stl")
    saveToFile(fileIn, fileOut)
    
def saveToSvg(fileIn, fileOut=""):
    if fileOut == "":
        fileOut = fileIn.replace(".scad",".svg")
    saveToFile(fileIn, fileOut)

def saveToFile(fileIn, fileOut,extra=""):
    #extra = extra + " --colorscheme Tomorrow"

    launchStr = 'openscad -o "' + fileOut + '"' + extra + ' "' + fileIn + '"'
    if ".png" in fileOut:
        launchStr = launchStr + " --render"
    print("            saveToFile launch string: " + launchStr)
    subprocess.run(launchStr)
    x=0

def getLaser(final_object,start=1.5,layers=1,thickness=3,tilediff=200):
        rv= []

        for x in range(layers):
            rv.append(translate([0,x*tilediff,0])(
                    projection()(
                        intersection()(translate([-500,-500,start+x*thickness])(cube(size=[1000,1000,0.1])),
                            final_object
                        )
                    )
            )
            )
            
        return union()(rv)

set_mode("laser")
load_scad_objects() 
 
************************************************/
